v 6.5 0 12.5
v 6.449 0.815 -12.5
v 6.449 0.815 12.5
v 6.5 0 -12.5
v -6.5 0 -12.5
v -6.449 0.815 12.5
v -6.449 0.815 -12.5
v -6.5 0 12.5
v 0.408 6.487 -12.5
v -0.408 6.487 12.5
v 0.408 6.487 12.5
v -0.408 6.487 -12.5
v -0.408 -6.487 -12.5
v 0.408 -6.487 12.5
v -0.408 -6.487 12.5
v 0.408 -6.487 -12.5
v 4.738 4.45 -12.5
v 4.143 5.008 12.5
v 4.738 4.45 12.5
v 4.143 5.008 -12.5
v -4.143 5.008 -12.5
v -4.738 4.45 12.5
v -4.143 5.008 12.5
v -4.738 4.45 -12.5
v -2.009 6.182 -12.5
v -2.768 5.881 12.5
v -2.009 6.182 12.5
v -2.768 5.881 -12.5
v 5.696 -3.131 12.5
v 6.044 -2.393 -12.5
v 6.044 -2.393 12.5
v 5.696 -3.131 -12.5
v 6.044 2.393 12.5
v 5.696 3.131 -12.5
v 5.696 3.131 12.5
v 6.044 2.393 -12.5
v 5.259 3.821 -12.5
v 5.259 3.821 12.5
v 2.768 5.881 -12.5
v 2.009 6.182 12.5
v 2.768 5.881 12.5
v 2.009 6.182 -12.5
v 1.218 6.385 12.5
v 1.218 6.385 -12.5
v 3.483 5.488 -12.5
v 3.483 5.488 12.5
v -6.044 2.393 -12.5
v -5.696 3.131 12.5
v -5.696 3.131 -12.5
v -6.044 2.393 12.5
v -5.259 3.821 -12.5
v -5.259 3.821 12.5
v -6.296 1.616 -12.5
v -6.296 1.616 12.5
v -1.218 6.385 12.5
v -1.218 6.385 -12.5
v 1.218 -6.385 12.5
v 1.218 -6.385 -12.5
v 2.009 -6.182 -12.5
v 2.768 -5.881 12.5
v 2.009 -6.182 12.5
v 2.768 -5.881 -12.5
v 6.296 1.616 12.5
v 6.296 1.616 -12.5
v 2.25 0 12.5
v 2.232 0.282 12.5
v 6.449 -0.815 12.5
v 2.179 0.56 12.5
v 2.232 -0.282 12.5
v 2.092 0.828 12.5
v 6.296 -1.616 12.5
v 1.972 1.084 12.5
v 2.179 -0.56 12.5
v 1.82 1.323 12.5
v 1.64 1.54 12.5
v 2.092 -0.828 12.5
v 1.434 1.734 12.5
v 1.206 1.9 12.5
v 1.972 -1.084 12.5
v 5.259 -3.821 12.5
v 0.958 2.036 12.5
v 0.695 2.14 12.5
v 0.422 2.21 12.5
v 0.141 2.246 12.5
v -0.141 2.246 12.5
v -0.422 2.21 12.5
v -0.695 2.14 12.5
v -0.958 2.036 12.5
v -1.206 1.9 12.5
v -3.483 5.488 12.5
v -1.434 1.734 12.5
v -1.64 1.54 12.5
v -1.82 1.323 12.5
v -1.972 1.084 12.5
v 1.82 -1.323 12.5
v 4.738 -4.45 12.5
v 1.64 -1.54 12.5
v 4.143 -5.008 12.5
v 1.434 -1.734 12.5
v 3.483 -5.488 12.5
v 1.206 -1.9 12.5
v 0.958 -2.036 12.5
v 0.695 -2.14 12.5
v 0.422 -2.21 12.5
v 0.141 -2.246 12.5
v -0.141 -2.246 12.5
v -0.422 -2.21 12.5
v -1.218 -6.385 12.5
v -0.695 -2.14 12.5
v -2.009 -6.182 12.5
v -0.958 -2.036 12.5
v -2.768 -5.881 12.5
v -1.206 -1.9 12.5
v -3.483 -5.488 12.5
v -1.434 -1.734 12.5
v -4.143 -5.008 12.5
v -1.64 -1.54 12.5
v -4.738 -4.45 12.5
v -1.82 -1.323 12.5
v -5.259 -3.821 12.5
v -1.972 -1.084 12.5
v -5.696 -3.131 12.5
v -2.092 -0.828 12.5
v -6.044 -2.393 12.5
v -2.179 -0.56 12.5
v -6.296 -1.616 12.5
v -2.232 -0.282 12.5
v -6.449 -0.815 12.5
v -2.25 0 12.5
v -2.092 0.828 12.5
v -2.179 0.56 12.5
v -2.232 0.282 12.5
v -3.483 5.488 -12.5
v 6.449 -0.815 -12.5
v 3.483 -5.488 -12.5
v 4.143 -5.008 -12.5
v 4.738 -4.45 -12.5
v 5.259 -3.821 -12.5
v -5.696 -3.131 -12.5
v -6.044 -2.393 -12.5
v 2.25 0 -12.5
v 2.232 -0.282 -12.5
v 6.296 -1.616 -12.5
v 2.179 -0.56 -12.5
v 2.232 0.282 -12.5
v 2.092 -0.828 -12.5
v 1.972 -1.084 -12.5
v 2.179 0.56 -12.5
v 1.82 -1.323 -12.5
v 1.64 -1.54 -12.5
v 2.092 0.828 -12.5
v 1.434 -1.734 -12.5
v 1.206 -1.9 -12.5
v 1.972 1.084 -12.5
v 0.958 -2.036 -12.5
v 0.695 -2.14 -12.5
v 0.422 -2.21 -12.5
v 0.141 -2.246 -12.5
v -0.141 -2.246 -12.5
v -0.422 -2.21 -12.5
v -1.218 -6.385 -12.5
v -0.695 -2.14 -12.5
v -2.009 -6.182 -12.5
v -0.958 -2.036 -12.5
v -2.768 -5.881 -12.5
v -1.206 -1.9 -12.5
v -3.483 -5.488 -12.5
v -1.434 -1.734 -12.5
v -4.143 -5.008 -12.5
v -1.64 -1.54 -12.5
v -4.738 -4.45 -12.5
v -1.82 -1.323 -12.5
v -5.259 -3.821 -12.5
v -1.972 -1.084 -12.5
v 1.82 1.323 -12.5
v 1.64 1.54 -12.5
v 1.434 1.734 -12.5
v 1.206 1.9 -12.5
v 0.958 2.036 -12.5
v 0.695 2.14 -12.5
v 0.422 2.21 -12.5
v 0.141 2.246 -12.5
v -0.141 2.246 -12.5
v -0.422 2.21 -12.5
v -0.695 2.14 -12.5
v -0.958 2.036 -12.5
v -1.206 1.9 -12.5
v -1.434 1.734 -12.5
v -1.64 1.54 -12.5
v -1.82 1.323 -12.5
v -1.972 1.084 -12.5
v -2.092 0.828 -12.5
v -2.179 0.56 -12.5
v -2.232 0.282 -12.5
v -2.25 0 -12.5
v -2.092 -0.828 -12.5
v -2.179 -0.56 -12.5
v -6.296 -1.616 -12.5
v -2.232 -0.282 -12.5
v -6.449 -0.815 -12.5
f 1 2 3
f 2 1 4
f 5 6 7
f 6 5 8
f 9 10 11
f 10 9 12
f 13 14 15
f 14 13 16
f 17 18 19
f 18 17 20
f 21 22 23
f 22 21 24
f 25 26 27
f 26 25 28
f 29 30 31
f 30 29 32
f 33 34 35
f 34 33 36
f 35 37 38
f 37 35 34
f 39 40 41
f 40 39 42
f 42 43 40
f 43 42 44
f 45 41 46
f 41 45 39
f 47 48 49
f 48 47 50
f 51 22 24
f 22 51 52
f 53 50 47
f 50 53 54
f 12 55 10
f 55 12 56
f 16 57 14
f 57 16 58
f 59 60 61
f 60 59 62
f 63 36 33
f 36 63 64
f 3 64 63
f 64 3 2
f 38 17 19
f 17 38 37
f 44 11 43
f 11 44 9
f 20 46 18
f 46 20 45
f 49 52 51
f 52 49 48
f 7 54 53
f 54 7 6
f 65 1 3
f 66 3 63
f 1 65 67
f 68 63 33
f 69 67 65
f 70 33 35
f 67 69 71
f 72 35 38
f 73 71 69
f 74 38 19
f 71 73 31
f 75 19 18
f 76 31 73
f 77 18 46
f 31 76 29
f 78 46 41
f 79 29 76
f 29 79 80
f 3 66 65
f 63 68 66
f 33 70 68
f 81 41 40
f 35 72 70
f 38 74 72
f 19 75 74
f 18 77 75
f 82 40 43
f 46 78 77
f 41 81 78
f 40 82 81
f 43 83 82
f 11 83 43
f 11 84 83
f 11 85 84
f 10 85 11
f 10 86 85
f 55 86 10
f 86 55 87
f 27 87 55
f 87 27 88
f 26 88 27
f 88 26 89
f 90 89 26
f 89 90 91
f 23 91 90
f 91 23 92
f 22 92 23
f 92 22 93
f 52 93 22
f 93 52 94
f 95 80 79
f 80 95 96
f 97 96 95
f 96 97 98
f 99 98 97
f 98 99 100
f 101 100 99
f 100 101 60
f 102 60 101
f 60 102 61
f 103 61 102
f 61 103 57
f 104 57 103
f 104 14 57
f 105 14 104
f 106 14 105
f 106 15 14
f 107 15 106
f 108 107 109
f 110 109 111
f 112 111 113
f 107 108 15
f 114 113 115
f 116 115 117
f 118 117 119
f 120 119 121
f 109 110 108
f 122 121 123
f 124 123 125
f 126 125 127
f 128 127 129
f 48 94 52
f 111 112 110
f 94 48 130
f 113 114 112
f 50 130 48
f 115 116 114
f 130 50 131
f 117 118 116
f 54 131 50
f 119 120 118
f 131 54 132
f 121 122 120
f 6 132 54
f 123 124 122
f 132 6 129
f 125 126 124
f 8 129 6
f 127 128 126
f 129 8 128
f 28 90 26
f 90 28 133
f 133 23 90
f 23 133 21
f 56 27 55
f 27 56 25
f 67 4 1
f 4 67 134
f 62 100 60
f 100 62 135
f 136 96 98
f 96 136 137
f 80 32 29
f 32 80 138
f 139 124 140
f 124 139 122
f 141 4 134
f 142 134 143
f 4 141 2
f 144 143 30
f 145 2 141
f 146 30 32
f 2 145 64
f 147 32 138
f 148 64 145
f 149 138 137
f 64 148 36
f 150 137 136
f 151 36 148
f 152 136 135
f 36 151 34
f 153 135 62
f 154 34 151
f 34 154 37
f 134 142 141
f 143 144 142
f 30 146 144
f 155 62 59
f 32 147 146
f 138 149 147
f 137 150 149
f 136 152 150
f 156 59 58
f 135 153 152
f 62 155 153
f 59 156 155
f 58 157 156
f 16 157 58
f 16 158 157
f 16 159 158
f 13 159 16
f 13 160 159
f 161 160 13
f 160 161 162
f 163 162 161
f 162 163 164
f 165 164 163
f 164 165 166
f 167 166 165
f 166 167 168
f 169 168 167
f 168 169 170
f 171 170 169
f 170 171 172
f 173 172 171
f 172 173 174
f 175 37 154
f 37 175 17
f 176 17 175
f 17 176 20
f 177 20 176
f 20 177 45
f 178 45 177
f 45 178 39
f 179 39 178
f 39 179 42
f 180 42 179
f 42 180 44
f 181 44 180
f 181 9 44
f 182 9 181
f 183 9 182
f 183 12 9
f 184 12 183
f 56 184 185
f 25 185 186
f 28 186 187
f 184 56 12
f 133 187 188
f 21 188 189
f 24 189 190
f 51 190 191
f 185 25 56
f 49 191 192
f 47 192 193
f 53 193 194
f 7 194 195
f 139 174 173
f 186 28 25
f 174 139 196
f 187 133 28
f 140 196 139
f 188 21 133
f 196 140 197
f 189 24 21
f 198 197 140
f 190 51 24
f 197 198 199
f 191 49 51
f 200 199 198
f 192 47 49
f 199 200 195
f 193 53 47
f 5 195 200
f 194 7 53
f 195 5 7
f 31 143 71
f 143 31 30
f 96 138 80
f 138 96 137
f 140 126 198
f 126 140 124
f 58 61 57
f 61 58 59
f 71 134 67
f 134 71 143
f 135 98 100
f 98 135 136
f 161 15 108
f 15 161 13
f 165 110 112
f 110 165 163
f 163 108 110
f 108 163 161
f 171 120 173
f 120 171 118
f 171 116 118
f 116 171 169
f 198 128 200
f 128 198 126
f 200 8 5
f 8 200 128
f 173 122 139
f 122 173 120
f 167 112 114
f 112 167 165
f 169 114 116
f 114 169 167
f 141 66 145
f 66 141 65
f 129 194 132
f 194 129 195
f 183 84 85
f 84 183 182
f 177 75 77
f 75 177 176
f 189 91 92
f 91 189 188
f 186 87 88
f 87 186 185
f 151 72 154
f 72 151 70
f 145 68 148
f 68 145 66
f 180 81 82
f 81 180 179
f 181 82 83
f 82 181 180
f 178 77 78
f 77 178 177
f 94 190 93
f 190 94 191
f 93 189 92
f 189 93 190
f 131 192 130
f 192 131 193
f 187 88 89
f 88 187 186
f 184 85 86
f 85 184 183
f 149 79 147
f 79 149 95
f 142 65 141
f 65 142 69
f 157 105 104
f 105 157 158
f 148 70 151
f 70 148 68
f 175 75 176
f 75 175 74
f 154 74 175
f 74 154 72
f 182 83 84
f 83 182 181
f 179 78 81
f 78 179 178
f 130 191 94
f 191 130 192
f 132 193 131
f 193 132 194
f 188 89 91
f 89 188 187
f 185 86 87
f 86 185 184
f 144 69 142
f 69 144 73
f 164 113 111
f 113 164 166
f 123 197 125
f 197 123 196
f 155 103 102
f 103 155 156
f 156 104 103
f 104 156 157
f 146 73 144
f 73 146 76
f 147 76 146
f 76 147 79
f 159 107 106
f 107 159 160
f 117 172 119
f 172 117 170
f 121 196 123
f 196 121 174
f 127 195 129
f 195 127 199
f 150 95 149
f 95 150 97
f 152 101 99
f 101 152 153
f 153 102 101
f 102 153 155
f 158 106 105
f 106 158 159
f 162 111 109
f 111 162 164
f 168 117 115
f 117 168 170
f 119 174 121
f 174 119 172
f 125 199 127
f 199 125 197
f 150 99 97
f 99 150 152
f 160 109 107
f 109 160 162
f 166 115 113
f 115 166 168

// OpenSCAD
$fn = 50;


difference() {
	union() {
		translate(v = [0, 0, -12.5000000000]) {
			cylinder(h = 25, r = 6.5000000000);
		}
	}
	union() {
		translate(v = [0, 0, -100.0000000000]) {
			cylinder(h = 200, r = 2.2500000000);
		}
	}
}
